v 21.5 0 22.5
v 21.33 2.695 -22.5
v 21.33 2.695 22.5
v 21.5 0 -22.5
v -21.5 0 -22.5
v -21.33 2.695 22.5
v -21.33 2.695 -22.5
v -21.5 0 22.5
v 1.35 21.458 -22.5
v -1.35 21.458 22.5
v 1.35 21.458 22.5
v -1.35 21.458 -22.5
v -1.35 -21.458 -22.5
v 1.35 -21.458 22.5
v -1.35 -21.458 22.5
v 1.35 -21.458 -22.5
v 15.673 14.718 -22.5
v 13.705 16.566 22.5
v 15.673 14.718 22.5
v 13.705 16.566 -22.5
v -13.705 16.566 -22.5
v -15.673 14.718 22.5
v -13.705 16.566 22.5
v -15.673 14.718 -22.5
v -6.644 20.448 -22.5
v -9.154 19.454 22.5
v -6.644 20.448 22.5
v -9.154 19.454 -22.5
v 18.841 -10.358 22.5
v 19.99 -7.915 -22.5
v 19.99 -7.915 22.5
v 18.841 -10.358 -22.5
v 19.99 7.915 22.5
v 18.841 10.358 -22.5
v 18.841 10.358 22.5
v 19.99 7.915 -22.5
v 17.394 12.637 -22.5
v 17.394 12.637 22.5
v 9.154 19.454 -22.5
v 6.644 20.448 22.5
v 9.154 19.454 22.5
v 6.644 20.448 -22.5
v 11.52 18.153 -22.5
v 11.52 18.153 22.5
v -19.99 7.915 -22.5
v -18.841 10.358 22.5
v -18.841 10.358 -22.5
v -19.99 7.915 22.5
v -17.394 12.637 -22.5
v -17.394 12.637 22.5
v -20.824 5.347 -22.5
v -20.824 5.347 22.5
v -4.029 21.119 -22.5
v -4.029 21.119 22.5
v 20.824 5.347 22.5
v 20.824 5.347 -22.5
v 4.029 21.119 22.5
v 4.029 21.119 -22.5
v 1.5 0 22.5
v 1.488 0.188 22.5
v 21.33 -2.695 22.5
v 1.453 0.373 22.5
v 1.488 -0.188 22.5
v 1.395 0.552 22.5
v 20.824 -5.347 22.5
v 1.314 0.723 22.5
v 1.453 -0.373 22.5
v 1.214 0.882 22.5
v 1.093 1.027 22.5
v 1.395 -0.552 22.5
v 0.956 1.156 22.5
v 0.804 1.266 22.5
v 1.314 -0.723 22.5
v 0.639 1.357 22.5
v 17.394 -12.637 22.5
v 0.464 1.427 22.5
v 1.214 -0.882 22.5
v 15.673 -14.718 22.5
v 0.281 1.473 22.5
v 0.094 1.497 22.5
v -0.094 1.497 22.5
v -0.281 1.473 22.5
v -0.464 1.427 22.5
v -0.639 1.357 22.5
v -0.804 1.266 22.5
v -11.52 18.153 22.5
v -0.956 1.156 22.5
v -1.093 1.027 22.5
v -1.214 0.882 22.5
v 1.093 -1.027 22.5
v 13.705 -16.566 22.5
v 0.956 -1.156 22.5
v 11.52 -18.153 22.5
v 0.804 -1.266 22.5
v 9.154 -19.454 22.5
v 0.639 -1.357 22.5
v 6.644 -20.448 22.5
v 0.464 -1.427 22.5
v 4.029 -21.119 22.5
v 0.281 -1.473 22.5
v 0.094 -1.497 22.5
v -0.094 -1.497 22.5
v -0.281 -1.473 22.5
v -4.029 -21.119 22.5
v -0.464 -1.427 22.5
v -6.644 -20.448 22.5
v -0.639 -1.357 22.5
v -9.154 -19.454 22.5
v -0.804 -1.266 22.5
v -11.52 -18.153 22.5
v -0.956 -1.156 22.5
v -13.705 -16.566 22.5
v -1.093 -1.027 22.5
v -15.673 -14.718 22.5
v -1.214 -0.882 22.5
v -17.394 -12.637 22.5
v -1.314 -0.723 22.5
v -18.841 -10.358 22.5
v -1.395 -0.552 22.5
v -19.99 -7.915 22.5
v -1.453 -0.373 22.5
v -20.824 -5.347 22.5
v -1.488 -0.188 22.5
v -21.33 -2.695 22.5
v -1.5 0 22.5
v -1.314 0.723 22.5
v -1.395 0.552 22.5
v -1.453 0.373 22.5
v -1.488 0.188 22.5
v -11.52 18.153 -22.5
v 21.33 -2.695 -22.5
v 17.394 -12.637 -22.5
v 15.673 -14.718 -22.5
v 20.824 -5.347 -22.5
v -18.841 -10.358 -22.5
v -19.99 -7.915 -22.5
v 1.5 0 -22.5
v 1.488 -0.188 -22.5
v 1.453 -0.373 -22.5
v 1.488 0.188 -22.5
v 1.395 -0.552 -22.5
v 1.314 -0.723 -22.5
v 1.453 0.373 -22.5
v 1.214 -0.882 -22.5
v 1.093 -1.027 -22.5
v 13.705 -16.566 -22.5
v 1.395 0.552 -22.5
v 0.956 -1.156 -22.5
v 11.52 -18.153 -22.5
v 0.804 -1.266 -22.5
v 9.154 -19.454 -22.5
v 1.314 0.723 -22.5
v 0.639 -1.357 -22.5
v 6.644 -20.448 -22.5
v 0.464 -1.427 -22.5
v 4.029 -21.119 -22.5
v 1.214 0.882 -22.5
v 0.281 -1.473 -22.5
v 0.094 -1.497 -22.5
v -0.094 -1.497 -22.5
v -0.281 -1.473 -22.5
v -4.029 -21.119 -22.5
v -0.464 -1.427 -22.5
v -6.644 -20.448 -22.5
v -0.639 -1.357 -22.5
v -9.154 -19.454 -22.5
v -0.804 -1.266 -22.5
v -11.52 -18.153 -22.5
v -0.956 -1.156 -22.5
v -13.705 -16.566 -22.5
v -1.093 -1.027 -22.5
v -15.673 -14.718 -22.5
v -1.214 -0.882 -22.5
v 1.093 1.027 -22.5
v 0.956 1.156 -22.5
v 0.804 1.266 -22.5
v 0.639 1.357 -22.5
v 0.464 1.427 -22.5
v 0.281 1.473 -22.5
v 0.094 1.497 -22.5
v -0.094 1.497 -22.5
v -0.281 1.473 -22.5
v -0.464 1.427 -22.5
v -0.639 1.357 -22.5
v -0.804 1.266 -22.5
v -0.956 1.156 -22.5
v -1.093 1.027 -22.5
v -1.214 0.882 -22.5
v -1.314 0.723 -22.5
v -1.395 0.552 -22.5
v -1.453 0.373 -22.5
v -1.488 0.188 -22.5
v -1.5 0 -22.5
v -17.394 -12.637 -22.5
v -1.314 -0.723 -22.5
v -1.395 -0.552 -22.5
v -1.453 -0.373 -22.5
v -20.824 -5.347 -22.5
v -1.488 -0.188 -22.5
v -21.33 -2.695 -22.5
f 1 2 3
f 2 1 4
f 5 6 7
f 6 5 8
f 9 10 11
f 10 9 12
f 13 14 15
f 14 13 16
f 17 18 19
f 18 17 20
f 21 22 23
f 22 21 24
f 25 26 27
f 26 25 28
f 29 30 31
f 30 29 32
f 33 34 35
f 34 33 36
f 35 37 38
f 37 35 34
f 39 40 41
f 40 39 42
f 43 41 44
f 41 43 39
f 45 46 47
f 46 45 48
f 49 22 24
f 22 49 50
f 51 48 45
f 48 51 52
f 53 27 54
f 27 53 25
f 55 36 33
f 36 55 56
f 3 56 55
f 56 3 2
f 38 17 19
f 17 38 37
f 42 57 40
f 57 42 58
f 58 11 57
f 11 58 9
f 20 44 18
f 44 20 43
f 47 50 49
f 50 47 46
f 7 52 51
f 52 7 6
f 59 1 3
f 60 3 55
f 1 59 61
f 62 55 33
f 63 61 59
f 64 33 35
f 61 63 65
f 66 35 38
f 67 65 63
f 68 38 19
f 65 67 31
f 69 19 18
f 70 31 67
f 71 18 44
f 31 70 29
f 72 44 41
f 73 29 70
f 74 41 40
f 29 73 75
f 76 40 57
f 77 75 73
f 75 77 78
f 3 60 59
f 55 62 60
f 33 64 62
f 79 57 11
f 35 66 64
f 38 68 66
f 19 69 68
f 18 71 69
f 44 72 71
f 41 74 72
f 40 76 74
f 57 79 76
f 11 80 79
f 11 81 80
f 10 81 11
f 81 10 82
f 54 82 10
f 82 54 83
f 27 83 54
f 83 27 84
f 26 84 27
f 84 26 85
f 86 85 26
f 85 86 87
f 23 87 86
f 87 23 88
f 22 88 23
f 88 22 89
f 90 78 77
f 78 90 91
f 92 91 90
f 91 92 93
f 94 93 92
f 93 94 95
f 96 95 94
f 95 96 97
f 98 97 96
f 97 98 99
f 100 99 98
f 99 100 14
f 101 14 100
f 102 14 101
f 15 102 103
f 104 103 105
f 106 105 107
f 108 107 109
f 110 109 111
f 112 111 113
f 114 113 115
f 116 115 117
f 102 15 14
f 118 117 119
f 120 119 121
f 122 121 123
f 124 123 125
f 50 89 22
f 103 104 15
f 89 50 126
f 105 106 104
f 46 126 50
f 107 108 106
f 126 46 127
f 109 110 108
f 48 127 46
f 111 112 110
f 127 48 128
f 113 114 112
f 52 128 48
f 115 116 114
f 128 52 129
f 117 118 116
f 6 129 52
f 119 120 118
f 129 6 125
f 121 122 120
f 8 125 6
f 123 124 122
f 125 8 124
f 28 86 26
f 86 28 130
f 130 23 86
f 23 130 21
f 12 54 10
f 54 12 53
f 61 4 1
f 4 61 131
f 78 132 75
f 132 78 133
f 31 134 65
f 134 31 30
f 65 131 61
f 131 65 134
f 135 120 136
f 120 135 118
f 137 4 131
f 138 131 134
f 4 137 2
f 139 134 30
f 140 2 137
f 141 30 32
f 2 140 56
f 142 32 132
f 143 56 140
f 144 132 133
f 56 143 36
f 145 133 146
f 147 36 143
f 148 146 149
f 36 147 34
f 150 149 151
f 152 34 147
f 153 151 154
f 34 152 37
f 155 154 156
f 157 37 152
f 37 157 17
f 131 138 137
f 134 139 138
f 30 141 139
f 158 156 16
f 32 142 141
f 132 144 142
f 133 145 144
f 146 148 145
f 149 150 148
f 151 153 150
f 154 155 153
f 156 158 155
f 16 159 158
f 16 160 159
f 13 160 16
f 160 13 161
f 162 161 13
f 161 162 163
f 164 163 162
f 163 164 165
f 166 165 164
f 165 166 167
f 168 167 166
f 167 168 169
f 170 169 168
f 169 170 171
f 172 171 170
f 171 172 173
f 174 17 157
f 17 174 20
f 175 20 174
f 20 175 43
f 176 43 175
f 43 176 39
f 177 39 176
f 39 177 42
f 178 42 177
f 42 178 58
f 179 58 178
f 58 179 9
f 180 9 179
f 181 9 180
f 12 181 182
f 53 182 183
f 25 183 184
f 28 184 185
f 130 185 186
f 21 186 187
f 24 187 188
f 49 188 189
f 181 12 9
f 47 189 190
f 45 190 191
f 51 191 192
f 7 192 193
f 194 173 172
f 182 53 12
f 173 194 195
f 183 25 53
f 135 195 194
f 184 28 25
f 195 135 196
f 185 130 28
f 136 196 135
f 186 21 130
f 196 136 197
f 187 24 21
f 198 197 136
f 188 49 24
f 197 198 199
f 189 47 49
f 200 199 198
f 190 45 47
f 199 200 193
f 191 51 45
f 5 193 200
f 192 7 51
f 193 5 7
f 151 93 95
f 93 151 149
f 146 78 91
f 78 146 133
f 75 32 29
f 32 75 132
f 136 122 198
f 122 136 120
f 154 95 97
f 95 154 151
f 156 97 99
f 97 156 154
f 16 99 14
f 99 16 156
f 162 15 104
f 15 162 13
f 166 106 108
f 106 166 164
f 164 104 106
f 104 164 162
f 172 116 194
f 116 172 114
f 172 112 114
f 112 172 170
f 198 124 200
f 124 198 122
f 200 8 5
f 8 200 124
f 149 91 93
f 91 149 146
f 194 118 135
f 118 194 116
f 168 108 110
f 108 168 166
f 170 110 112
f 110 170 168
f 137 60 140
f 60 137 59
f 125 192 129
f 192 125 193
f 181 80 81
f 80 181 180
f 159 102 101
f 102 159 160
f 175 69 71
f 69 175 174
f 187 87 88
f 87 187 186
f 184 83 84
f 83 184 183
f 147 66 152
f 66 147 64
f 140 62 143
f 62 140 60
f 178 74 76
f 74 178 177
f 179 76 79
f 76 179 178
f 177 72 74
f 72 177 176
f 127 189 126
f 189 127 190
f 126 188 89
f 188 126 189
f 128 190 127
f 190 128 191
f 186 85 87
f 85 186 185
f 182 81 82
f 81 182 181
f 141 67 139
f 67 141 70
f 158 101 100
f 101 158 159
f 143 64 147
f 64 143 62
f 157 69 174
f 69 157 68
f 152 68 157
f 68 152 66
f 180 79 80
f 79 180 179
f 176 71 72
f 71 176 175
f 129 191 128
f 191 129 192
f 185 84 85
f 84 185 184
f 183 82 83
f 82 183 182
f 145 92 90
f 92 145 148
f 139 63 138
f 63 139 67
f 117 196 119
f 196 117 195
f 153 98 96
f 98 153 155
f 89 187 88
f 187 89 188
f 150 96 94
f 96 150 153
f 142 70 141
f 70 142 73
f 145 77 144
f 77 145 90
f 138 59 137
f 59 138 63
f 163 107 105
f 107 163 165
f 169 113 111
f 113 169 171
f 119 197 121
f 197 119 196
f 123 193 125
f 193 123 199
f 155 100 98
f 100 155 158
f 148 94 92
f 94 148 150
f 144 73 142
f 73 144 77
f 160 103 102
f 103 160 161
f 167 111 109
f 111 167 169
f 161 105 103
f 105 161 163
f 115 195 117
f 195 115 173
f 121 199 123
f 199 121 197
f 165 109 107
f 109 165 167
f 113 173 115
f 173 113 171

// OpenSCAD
$fn = 50;


difference() {
	union() {
		translate(v = [0, 0, -22.5000000000]) {
			cylinder(h = 45, r = 21.5000000000);
		}
	}
	union() {
		translate(v = [0, 0, -100.0000000000]) {
			cylinder(h = 200, r = 1.5000000000);
		}
	}
}
